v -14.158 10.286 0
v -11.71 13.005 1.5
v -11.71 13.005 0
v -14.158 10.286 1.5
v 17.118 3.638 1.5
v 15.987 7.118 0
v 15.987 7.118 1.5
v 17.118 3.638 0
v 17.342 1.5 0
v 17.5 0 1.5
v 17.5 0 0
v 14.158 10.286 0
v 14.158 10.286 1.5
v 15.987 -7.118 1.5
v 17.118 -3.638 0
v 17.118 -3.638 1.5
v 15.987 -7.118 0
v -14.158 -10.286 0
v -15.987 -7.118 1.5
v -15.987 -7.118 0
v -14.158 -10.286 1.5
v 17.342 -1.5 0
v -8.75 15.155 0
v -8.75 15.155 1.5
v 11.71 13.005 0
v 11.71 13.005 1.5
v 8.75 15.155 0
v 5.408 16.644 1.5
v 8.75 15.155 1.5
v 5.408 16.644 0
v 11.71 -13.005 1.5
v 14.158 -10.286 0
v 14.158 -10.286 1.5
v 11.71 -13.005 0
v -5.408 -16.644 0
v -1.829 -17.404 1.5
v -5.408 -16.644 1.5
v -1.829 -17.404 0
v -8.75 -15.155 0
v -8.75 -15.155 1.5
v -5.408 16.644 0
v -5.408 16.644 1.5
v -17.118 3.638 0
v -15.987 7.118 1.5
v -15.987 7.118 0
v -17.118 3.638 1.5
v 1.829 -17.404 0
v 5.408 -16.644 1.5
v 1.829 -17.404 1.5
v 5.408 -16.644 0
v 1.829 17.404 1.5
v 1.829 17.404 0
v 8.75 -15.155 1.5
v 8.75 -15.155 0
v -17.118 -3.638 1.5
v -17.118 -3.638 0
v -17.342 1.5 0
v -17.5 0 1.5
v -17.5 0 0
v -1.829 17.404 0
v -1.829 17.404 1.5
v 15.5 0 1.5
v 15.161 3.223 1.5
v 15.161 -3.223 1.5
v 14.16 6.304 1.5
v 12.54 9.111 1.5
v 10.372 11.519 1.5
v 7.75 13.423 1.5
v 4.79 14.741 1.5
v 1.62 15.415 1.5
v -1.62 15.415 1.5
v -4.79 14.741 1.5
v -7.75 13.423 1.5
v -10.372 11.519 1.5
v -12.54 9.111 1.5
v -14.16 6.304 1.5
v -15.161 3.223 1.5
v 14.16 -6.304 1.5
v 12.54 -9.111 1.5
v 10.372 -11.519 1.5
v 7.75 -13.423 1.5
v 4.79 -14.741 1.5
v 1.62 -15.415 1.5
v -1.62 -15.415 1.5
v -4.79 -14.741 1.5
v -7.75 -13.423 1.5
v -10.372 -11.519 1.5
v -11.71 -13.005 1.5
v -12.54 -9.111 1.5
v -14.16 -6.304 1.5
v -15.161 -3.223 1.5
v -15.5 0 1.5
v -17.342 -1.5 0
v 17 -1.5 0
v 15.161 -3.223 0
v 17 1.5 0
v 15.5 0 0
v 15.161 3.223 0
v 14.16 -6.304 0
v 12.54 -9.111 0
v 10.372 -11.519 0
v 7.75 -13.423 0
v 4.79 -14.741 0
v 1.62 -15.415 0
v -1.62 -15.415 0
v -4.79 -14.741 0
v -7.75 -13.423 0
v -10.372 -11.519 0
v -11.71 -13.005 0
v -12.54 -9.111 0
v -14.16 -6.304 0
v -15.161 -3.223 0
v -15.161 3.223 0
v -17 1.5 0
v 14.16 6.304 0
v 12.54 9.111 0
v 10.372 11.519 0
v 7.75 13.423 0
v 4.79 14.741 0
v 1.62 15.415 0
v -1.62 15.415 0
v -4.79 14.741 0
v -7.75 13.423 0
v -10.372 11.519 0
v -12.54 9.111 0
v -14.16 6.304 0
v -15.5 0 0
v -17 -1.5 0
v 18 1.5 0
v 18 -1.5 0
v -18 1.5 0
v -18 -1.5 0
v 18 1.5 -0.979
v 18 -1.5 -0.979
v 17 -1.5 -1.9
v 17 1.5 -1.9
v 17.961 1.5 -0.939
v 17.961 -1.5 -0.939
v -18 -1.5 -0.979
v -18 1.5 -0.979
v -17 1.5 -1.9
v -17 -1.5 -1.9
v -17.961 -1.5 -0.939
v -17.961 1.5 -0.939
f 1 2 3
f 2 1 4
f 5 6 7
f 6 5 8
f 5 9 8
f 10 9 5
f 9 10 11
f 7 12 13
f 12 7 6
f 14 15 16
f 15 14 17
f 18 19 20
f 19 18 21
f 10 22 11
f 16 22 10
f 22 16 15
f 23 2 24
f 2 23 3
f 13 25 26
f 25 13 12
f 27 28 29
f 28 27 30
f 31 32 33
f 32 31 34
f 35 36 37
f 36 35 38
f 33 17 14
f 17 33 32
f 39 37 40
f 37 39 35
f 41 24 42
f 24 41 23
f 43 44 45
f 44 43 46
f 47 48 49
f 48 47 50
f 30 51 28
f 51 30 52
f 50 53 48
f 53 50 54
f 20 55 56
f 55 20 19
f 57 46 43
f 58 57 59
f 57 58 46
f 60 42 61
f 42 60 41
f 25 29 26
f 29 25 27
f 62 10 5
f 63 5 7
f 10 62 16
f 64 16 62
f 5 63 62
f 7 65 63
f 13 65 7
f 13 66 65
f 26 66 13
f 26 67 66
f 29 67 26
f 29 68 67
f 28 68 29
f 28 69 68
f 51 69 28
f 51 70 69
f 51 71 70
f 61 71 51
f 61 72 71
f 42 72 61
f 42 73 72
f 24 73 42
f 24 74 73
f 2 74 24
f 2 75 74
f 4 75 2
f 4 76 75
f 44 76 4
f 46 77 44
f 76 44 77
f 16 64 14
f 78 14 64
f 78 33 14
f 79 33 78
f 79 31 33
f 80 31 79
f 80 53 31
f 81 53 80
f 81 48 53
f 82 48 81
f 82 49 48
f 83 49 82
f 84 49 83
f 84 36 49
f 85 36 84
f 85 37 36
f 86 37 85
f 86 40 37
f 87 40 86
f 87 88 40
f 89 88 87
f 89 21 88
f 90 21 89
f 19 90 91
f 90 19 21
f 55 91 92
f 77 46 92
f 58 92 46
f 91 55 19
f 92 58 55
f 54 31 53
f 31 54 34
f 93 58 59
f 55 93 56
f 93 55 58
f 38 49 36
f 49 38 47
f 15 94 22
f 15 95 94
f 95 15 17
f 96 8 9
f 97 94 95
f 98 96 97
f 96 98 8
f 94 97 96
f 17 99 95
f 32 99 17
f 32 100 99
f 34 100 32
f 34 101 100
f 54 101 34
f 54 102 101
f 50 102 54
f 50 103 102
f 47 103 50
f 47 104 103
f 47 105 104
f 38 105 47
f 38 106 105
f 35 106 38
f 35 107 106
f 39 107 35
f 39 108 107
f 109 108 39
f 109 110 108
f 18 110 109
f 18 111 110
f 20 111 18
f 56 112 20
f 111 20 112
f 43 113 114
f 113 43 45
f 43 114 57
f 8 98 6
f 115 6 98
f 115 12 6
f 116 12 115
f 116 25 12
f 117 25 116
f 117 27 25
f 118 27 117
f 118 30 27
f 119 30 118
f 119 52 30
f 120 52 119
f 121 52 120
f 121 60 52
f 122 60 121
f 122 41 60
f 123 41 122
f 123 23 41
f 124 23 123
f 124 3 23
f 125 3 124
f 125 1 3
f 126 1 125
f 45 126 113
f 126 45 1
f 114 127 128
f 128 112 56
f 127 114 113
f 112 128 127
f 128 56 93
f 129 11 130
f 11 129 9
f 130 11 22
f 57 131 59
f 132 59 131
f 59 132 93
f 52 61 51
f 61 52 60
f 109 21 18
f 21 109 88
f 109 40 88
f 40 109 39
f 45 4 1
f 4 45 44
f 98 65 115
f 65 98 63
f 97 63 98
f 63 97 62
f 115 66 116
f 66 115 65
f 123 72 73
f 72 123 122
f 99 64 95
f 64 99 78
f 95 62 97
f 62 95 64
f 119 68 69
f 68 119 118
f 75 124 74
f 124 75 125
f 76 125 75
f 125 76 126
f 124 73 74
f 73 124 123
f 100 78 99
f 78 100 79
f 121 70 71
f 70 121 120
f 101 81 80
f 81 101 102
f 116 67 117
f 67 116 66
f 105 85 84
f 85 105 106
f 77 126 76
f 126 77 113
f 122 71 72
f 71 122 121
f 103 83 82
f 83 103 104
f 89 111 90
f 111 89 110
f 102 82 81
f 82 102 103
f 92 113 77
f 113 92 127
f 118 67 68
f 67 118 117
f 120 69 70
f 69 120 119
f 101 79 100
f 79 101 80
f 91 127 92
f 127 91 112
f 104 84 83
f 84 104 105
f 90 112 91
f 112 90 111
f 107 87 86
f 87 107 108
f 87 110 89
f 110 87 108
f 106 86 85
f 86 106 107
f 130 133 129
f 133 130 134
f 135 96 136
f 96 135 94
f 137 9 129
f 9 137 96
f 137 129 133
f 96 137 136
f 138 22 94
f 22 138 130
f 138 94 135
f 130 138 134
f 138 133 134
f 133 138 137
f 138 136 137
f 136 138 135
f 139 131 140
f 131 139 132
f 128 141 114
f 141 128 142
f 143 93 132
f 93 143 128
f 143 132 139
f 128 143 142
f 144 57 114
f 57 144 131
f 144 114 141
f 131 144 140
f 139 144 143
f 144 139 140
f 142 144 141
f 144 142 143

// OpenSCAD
// RWC Energy Core - Square Edition
// Part 3: Screen Retaining Frame
// Holds GC9A01 1.28" LCD onto top shell ledge
$fn = 30;

frame_od = 35;
frame_id = 31;
frame_h = 1.5;
clip_w = 3;
clip_d = 1.0;
clip_h = 2;

module screen_frame() {
    // Main ring
    difference() {
        cylinder(d=frame_od, h=frame_h);
        translate([0, 0, -0.1])
            cylinder(d=frame_id, h=frame_h + 0.2);
    }
    
    // 2 snap clips (180° apart) extending downward
    for (angle = [0, 180]) {
        rotate([0, 0, angle])
            translate([frame_od/2 - 0.5, -clip_w/2, -clip_h])
                clip();
    }
}

module clip() {
    // Clip with 45° ramp entry
    difference() {
        cube([clip_d, clip_w, clip_h]);
        // 45° chamfer at bottom for snap entry
        translate([-0.1, -0.1, 0])
            rotate([0, 45, 0])
                cube([clip_d * 1.5, clip_w + 0.2, clip_d * 1.5]);
    }
}

screen_frame();
